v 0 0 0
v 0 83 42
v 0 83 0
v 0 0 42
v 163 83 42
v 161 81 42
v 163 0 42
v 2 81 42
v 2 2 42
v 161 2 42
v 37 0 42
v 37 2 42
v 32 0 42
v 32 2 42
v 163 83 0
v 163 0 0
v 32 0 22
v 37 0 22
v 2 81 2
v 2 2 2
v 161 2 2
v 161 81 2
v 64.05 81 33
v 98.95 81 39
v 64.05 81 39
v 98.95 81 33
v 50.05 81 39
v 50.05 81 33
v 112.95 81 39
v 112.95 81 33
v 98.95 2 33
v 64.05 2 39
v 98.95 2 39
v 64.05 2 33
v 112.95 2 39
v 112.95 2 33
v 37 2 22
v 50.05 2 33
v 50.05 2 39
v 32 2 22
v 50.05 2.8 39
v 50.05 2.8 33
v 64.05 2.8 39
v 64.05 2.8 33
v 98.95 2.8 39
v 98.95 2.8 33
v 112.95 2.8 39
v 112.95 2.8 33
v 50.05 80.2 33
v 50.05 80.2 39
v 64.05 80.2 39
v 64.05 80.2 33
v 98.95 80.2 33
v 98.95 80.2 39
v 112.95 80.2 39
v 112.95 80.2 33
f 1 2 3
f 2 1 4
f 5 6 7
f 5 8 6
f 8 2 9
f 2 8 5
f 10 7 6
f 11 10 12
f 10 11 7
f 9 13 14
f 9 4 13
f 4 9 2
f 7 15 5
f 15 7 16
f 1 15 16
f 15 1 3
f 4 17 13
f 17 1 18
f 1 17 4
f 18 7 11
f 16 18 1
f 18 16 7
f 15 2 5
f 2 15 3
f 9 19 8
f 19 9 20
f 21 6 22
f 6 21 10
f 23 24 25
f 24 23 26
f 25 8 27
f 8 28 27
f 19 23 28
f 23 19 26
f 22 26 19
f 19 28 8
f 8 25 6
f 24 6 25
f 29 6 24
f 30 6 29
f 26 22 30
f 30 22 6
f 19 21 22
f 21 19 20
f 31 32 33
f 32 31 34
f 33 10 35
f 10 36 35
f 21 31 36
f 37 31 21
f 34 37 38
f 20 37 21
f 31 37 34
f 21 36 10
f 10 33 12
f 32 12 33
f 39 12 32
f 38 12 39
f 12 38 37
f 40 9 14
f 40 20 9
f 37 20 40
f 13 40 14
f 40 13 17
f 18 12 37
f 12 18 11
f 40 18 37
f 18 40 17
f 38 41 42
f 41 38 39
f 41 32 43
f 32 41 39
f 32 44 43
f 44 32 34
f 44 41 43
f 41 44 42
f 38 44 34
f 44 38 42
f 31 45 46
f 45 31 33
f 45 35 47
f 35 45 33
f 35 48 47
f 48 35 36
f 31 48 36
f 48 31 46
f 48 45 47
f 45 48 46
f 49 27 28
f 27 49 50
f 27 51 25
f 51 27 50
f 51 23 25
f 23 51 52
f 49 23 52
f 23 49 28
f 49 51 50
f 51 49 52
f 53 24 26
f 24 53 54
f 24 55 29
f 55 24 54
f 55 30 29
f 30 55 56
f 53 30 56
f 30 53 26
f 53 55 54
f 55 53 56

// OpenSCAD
// Back box for Waveshare RGB-Matrix P2.5 64x32
// Rear usable frame: 158 x 78 mm. [web:10]

panel_len_back    = 158;
panel_height_back = 78;

inner_depth    = 30;   // free space for electronics
frame_overlap  = 10;   // how far box slides over panel frame
wall           = 2;
bottom_thick   = 2;

slit_width     = 5;
slit_offset    = 30;   // from left corner
slit_depth     = 20;   // from open top downward

clearance      = 0.5;

inner_len      = panel_len_back  + 2*clearance;
inner_height   = panel_height_back + 2*clearance;
outer_len      = inner_len + 2*wall;
outer_height   = inner_height + 2*wall;
outer_depth    = bottom_thick + inner_depth + frame_overlap;

// simple rectangular clip
module side_clip() {
    clip_len   = 14;   // along X
    clip_thick = 0.8;  // into cavity (Y)
    clip_height = 6;   // vertical size
    cube([clip_len, clip_thick, clip_height], center=false);
}

module box_body() {
    difference() {
        // outer shell
        cube([outer_len, outer_height, outer_depth], center=false);

        // inner cavity (hollow)
        translate([wall, wall, bottom_thick])
            cube([inner_len, inner_height, inner_depth + frame_overlap], center=false);

        // cable slit at open/top side
        translate([
            wall + slit_offset,
            0,
            outer_depth - slit_depth
        ])
            cube([slit_width, wall + 0.6, slit_depth], center=false);
    }

    // ---- clips ----
    clip_len    = 14;
    clip_thick  = 0.8;

    // attach directly to inner faces (no gap):
    clip_y_inner_bottom = wall;                         // inner bottom wall
    clip_y_inner_top    = outer_height - wall - clip_thick; // inner top wall

    // Z: in the overlap zone near open side
    clip_z      = bottom_thick + inner_depth + 1;

    // X positions chosen away from the slit (center-ish)
    xpos_list = [outer_len * 0.35, outer_len * 0.65];

    // bottom long wall clips
    for (xp = xpos_list) {
        translate([xp - clip_len/2, clip_y_inner_bottom, clip_z])
            side_clip();
    }

    // top long wall clips
    for (xp = xpos_list) {
        translate([xp - clip_len/2, clip_y_inner_top, clip_z])
            side_clip();
    }
}

box_body();
